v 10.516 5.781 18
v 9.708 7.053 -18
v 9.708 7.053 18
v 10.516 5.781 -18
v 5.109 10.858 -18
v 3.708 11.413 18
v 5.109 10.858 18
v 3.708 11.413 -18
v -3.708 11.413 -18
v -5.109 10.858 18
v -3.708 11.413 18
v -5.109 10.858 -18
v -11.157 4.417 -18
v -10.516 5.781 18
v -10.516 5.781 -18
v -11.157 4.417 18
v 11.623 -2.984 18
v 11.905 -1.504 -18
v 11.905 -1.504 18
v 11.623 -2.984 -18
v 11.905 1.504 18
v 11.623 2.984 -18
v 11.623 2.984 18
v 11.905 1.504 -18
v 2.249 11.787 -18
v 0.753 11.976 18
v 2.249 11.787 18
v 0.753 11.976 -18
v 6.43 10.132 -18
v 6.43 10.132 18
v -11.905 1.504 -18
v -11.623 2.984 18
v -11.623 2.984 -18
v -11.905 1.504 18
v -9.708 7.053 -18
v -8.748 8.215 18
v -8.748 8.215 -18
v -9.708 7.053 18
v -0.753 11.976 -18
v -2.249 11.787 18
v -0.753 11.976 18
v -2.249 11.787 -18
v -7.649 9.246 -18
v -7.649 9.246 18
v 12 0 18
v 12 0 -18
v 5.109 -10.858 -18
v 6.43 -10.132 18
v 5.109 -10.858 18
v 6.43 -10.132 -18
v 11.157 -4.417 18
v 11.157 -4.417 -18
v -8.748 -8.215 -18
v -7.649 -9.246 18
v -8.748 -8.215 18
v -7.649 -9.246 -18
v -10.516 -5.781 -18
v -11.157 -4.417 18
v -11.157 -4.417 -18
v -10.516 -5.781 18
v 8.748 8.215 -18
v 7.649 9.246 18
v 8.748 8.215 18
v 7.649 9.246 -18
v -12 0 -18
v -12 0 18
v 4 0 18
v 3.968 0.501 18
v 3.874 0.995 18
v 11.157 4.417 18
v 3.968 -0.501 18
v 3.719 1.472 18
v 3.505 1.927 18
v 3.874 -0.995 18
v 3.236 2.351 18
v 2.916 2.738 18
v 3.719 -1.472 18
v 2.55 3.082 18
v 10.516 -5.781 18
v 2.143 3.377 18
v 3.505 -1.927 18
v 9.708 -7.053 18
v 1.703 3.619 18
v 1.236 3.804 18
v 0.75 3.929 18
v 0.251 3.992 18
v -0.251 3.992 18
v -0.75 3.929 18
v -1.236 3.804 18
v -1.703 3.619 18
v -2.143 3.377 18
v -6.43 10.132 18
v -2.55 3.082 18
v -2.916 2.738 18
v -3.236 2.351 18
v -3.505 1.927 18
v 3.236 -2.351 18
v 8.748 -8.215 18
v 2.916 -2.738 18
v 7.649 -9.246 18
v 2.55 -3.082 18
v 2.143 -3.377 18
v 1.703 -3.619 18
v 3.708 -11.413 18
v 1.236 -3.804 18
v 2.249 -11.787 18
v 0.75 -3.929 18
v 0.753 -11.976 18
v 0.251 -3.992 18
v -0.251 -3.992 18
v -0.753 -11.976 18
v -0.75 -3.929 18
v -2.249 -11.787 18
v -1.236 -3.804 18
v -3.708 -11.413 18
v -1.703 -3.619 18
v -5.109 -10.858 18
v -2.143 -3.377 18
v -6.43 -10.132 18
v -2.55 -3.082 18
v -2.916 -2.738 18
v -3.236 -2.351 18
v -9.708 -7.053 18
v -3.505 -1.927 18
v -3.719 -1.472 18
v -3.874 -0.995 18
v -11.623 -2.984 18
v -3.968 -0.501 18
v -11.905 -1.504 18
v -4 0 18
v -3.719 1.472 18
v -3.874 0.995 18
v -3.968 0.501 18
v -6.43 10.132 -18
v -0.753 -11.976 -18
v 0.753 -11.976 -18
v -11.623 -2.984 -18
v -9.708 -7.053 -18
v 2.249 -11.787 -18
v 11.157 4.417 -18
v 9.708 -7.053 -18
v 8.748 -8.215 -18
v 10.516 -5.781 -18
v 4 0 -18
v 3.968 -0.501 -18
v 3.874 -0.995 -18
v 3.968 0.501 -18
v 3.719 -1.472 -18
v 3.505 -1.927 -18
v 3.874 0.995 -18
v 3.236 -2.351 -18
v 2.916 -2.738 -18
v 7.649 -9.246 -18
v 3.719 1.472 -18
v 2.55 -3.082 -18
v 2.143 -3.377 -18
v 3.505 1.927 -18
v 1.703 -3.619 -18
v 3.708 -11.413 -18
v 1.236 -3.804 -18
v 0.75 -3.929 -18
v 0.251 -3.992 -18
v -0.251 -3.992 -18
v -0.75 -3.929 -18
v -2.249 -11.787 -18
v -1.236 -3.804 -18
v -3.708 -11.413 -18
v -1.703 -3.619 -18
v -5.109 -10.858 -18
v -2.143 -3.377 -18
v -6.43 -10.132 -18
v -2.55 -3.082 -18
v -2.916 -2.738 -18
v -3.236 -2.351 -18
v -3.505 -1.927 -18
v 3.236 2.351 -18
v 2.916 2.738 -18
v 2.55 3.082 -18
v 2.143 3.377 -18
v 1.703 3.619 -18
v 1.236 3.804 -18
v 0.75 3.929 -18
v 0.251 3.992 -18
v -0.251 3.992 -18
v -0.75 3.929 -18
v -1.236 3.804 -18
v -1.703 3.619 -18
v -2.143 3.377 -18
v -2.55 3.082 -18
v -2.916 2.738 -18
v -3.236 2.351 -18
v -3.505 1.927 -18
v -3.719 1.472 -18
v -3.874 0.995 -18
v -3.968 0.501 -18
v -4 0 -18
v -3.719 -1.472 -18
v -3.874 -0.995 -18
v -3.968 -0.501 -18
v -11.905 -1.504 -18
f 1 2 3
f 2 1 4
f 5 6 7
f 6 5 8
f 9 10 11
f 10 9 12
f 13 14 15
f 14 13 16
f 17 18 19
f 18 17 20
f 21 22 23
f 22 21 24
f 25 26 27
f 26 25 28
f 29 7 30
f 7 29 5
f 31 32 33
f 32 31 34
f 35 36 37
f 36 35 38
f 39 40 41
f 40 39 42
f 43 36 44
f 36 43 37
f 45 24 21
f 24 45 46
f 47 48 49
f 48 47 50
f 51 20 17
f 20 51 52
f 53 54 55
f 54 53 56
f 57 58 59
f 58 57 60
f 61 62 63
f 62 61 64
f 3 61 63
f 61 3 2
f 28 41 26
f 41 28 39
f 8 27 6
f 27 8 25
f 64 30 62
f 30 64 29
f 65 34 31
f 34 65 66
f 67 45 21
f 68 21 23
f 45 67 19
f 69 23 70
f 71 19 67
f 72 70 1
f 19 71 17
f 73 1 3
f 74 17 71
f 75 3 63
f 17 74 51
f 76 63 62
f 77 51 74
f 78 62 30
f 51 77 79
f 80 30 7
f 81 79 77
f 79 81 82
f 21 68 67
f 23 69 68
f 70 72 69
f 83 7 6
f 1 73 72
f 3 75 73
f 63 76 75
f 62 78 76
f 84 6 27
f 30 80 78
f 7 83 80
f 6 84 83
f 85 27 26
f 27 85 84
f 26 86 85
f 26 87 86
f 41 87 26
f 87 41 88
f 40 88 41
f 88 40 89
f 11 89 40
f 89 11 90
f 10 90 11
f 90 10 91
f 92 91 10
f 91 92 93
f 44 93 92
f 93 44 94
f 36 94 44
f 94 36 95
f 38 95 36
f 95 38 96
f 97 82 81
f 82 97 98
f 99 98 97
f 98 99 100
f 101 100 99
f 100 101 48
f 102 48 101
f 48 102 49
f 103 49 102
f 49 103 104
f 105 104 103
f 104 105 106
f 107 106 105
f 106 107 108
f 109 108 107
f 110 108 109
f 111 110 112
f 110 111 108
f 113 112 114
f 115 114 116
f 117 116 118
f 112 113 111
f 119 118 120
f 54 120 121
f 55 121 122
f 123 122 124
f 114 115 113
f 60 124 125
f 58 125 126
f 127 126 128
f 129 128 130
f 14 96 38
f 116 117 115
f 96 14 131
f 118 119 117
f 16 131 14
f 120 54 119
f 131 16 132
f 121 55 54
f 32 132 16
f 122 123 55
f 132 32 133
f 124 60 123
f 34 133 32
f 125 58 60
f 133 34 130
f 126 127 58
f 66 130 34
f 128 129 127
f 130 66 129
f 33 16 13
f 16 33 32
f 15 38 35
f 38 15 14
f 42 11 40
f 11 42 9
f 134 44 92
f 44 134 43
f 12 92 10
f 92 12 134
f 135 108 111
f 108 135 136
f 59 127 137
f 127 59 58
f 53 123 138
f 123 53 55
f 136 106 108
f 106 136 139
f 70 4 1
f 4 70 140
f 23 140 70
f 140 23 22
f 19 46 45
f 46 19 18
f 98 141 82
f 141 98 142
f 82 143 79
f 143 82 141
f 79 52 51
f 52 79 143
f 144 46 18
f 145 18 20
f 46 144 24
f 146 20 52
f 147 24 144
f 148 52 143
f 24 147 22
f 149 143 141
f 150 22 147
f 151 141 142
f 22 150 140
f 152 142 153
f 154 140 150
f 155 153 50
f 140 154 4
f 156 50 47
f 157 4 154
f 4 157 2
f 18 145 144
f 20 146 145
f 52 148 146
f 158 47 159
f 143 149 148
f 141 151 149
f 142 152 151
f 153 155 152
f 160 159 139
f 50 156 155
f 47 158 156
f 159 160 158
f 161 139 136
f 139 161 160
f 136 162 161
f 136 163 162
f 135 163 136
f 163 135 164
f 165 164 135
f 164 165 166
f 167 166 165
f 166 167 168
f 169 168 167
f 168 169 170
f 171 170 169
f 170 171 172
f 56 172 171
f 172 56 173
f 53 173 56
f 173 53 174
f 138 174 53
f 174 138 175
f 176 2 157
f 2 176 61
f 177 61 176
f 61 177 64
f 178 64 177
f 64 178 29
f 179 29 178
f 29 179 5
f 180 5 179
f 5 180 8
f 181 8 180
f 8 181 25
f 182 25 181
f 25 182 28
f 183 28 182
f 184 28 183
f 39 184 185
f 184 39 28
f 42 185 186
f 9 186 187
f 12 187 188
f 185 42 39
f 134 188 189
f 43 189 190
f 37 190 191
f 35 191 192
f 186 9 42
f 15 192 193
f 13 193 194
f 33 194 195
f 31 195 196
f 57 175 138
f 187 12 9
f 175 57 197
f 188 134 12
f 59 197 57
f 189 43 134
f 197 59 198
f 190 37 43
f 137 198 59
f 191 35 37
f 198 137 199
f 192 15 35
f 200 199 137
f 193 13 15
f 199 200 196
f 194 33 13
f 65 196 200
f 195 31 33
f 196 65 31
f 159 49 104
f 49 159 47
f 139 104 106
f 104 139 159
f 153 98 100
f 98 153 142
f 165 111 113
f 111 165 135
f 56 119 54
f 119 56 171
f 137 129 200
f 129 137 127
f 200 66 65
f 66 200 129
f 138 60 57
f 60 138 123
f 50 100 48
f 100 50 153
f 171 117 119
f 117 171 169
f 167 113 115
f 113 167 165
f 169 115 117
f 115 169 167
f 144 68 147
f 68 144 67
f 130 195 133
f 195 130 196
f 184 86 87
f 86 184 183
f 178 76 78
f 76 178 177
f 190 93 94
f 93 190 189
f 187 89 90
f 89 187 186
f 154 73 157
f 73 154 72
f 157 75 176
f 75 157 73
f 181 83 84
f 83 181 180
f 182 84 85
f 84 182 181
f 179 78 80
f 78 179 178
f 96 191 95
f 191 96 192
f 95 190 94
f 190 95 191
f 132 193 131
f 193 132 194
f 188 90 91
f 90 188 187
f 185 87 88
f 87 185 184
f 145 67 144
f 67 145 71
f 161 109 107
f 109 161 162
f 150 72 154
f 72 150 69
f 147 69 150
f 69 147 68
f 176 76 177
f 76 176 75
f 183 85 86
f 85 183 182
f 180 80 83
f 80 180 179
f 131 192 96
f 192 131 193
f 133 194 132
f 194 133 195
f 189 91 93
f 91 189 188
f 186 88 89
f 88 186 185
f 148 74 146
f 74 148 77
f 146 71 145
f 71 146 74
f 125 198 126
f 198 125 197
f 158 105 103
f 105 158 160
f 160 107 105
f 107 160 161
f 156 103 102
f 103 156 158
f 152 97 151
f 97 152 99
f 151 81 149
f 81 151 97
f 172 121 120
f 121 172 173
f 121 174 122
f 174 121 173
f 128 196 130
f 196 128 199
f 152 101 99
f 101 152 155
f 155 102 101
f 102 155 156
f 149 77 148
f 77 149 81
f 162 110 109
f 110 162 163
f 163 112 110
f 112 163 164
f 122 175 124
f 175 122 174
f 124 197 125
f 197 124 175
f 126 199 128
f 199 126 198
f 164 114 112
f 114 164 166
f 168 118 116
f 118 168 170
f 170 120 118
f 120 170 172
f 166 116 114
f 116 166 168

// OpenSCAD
$fn = 50;


difference() {
	union() {
		translate(v = [0, 0, -18.0000000000]) {
			cylinder(h = 36, r = 12.0000000000);
		}
	}
	union() {
		translate(v = [0, 0, -100.0000000000]) {
			cylinder(h = 200, r = 4);
		}
	}
}
